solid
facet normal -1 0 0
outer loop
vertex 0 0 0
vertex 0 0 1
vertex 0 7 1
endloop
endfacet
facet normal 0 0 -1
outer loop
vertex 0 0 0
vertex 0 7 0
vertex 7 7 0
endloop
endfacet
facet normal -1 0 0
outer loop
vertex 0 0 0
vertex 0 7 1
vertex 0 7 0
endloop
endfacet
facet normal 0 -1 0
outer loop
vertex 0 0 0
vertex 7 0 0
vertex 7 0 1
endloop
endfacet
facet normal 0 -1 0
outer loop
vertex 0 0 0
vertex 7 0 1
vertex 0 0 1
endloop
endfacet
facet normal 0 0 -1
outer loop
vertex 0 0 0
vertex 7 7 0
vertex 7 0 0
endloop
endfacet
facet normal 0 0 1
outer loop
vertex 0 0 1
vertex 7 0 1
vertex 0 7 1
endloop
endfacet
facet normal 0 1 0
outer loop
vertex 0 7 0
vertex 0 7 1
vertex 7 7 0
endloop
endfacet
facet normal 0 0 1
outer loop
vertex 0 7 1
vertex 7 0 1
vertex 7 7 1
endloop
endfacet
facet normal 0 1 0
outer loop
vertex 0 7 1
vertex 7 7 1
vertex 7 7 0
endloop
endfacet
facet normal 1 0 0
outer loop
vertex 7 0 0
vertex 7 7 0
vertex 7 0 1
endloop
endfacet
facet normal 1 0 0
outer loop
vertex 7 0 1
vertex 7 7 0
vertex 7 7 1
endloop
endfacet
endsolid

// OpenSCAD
/* Warning, this is a very basic generator with a lot of approximation 
input data : [TQFP, Y8X, 7x7x1.0mm, 48, , D, C04-00300D]
generated by com.zoubworld.electronics.cad.model3d.Basic
Date : Sun Feb 15 10:50:48 CET 2026
*/

//body
color("black")
translate([0,0,0])
cube([7.0,7.0,1.0], center=false);
